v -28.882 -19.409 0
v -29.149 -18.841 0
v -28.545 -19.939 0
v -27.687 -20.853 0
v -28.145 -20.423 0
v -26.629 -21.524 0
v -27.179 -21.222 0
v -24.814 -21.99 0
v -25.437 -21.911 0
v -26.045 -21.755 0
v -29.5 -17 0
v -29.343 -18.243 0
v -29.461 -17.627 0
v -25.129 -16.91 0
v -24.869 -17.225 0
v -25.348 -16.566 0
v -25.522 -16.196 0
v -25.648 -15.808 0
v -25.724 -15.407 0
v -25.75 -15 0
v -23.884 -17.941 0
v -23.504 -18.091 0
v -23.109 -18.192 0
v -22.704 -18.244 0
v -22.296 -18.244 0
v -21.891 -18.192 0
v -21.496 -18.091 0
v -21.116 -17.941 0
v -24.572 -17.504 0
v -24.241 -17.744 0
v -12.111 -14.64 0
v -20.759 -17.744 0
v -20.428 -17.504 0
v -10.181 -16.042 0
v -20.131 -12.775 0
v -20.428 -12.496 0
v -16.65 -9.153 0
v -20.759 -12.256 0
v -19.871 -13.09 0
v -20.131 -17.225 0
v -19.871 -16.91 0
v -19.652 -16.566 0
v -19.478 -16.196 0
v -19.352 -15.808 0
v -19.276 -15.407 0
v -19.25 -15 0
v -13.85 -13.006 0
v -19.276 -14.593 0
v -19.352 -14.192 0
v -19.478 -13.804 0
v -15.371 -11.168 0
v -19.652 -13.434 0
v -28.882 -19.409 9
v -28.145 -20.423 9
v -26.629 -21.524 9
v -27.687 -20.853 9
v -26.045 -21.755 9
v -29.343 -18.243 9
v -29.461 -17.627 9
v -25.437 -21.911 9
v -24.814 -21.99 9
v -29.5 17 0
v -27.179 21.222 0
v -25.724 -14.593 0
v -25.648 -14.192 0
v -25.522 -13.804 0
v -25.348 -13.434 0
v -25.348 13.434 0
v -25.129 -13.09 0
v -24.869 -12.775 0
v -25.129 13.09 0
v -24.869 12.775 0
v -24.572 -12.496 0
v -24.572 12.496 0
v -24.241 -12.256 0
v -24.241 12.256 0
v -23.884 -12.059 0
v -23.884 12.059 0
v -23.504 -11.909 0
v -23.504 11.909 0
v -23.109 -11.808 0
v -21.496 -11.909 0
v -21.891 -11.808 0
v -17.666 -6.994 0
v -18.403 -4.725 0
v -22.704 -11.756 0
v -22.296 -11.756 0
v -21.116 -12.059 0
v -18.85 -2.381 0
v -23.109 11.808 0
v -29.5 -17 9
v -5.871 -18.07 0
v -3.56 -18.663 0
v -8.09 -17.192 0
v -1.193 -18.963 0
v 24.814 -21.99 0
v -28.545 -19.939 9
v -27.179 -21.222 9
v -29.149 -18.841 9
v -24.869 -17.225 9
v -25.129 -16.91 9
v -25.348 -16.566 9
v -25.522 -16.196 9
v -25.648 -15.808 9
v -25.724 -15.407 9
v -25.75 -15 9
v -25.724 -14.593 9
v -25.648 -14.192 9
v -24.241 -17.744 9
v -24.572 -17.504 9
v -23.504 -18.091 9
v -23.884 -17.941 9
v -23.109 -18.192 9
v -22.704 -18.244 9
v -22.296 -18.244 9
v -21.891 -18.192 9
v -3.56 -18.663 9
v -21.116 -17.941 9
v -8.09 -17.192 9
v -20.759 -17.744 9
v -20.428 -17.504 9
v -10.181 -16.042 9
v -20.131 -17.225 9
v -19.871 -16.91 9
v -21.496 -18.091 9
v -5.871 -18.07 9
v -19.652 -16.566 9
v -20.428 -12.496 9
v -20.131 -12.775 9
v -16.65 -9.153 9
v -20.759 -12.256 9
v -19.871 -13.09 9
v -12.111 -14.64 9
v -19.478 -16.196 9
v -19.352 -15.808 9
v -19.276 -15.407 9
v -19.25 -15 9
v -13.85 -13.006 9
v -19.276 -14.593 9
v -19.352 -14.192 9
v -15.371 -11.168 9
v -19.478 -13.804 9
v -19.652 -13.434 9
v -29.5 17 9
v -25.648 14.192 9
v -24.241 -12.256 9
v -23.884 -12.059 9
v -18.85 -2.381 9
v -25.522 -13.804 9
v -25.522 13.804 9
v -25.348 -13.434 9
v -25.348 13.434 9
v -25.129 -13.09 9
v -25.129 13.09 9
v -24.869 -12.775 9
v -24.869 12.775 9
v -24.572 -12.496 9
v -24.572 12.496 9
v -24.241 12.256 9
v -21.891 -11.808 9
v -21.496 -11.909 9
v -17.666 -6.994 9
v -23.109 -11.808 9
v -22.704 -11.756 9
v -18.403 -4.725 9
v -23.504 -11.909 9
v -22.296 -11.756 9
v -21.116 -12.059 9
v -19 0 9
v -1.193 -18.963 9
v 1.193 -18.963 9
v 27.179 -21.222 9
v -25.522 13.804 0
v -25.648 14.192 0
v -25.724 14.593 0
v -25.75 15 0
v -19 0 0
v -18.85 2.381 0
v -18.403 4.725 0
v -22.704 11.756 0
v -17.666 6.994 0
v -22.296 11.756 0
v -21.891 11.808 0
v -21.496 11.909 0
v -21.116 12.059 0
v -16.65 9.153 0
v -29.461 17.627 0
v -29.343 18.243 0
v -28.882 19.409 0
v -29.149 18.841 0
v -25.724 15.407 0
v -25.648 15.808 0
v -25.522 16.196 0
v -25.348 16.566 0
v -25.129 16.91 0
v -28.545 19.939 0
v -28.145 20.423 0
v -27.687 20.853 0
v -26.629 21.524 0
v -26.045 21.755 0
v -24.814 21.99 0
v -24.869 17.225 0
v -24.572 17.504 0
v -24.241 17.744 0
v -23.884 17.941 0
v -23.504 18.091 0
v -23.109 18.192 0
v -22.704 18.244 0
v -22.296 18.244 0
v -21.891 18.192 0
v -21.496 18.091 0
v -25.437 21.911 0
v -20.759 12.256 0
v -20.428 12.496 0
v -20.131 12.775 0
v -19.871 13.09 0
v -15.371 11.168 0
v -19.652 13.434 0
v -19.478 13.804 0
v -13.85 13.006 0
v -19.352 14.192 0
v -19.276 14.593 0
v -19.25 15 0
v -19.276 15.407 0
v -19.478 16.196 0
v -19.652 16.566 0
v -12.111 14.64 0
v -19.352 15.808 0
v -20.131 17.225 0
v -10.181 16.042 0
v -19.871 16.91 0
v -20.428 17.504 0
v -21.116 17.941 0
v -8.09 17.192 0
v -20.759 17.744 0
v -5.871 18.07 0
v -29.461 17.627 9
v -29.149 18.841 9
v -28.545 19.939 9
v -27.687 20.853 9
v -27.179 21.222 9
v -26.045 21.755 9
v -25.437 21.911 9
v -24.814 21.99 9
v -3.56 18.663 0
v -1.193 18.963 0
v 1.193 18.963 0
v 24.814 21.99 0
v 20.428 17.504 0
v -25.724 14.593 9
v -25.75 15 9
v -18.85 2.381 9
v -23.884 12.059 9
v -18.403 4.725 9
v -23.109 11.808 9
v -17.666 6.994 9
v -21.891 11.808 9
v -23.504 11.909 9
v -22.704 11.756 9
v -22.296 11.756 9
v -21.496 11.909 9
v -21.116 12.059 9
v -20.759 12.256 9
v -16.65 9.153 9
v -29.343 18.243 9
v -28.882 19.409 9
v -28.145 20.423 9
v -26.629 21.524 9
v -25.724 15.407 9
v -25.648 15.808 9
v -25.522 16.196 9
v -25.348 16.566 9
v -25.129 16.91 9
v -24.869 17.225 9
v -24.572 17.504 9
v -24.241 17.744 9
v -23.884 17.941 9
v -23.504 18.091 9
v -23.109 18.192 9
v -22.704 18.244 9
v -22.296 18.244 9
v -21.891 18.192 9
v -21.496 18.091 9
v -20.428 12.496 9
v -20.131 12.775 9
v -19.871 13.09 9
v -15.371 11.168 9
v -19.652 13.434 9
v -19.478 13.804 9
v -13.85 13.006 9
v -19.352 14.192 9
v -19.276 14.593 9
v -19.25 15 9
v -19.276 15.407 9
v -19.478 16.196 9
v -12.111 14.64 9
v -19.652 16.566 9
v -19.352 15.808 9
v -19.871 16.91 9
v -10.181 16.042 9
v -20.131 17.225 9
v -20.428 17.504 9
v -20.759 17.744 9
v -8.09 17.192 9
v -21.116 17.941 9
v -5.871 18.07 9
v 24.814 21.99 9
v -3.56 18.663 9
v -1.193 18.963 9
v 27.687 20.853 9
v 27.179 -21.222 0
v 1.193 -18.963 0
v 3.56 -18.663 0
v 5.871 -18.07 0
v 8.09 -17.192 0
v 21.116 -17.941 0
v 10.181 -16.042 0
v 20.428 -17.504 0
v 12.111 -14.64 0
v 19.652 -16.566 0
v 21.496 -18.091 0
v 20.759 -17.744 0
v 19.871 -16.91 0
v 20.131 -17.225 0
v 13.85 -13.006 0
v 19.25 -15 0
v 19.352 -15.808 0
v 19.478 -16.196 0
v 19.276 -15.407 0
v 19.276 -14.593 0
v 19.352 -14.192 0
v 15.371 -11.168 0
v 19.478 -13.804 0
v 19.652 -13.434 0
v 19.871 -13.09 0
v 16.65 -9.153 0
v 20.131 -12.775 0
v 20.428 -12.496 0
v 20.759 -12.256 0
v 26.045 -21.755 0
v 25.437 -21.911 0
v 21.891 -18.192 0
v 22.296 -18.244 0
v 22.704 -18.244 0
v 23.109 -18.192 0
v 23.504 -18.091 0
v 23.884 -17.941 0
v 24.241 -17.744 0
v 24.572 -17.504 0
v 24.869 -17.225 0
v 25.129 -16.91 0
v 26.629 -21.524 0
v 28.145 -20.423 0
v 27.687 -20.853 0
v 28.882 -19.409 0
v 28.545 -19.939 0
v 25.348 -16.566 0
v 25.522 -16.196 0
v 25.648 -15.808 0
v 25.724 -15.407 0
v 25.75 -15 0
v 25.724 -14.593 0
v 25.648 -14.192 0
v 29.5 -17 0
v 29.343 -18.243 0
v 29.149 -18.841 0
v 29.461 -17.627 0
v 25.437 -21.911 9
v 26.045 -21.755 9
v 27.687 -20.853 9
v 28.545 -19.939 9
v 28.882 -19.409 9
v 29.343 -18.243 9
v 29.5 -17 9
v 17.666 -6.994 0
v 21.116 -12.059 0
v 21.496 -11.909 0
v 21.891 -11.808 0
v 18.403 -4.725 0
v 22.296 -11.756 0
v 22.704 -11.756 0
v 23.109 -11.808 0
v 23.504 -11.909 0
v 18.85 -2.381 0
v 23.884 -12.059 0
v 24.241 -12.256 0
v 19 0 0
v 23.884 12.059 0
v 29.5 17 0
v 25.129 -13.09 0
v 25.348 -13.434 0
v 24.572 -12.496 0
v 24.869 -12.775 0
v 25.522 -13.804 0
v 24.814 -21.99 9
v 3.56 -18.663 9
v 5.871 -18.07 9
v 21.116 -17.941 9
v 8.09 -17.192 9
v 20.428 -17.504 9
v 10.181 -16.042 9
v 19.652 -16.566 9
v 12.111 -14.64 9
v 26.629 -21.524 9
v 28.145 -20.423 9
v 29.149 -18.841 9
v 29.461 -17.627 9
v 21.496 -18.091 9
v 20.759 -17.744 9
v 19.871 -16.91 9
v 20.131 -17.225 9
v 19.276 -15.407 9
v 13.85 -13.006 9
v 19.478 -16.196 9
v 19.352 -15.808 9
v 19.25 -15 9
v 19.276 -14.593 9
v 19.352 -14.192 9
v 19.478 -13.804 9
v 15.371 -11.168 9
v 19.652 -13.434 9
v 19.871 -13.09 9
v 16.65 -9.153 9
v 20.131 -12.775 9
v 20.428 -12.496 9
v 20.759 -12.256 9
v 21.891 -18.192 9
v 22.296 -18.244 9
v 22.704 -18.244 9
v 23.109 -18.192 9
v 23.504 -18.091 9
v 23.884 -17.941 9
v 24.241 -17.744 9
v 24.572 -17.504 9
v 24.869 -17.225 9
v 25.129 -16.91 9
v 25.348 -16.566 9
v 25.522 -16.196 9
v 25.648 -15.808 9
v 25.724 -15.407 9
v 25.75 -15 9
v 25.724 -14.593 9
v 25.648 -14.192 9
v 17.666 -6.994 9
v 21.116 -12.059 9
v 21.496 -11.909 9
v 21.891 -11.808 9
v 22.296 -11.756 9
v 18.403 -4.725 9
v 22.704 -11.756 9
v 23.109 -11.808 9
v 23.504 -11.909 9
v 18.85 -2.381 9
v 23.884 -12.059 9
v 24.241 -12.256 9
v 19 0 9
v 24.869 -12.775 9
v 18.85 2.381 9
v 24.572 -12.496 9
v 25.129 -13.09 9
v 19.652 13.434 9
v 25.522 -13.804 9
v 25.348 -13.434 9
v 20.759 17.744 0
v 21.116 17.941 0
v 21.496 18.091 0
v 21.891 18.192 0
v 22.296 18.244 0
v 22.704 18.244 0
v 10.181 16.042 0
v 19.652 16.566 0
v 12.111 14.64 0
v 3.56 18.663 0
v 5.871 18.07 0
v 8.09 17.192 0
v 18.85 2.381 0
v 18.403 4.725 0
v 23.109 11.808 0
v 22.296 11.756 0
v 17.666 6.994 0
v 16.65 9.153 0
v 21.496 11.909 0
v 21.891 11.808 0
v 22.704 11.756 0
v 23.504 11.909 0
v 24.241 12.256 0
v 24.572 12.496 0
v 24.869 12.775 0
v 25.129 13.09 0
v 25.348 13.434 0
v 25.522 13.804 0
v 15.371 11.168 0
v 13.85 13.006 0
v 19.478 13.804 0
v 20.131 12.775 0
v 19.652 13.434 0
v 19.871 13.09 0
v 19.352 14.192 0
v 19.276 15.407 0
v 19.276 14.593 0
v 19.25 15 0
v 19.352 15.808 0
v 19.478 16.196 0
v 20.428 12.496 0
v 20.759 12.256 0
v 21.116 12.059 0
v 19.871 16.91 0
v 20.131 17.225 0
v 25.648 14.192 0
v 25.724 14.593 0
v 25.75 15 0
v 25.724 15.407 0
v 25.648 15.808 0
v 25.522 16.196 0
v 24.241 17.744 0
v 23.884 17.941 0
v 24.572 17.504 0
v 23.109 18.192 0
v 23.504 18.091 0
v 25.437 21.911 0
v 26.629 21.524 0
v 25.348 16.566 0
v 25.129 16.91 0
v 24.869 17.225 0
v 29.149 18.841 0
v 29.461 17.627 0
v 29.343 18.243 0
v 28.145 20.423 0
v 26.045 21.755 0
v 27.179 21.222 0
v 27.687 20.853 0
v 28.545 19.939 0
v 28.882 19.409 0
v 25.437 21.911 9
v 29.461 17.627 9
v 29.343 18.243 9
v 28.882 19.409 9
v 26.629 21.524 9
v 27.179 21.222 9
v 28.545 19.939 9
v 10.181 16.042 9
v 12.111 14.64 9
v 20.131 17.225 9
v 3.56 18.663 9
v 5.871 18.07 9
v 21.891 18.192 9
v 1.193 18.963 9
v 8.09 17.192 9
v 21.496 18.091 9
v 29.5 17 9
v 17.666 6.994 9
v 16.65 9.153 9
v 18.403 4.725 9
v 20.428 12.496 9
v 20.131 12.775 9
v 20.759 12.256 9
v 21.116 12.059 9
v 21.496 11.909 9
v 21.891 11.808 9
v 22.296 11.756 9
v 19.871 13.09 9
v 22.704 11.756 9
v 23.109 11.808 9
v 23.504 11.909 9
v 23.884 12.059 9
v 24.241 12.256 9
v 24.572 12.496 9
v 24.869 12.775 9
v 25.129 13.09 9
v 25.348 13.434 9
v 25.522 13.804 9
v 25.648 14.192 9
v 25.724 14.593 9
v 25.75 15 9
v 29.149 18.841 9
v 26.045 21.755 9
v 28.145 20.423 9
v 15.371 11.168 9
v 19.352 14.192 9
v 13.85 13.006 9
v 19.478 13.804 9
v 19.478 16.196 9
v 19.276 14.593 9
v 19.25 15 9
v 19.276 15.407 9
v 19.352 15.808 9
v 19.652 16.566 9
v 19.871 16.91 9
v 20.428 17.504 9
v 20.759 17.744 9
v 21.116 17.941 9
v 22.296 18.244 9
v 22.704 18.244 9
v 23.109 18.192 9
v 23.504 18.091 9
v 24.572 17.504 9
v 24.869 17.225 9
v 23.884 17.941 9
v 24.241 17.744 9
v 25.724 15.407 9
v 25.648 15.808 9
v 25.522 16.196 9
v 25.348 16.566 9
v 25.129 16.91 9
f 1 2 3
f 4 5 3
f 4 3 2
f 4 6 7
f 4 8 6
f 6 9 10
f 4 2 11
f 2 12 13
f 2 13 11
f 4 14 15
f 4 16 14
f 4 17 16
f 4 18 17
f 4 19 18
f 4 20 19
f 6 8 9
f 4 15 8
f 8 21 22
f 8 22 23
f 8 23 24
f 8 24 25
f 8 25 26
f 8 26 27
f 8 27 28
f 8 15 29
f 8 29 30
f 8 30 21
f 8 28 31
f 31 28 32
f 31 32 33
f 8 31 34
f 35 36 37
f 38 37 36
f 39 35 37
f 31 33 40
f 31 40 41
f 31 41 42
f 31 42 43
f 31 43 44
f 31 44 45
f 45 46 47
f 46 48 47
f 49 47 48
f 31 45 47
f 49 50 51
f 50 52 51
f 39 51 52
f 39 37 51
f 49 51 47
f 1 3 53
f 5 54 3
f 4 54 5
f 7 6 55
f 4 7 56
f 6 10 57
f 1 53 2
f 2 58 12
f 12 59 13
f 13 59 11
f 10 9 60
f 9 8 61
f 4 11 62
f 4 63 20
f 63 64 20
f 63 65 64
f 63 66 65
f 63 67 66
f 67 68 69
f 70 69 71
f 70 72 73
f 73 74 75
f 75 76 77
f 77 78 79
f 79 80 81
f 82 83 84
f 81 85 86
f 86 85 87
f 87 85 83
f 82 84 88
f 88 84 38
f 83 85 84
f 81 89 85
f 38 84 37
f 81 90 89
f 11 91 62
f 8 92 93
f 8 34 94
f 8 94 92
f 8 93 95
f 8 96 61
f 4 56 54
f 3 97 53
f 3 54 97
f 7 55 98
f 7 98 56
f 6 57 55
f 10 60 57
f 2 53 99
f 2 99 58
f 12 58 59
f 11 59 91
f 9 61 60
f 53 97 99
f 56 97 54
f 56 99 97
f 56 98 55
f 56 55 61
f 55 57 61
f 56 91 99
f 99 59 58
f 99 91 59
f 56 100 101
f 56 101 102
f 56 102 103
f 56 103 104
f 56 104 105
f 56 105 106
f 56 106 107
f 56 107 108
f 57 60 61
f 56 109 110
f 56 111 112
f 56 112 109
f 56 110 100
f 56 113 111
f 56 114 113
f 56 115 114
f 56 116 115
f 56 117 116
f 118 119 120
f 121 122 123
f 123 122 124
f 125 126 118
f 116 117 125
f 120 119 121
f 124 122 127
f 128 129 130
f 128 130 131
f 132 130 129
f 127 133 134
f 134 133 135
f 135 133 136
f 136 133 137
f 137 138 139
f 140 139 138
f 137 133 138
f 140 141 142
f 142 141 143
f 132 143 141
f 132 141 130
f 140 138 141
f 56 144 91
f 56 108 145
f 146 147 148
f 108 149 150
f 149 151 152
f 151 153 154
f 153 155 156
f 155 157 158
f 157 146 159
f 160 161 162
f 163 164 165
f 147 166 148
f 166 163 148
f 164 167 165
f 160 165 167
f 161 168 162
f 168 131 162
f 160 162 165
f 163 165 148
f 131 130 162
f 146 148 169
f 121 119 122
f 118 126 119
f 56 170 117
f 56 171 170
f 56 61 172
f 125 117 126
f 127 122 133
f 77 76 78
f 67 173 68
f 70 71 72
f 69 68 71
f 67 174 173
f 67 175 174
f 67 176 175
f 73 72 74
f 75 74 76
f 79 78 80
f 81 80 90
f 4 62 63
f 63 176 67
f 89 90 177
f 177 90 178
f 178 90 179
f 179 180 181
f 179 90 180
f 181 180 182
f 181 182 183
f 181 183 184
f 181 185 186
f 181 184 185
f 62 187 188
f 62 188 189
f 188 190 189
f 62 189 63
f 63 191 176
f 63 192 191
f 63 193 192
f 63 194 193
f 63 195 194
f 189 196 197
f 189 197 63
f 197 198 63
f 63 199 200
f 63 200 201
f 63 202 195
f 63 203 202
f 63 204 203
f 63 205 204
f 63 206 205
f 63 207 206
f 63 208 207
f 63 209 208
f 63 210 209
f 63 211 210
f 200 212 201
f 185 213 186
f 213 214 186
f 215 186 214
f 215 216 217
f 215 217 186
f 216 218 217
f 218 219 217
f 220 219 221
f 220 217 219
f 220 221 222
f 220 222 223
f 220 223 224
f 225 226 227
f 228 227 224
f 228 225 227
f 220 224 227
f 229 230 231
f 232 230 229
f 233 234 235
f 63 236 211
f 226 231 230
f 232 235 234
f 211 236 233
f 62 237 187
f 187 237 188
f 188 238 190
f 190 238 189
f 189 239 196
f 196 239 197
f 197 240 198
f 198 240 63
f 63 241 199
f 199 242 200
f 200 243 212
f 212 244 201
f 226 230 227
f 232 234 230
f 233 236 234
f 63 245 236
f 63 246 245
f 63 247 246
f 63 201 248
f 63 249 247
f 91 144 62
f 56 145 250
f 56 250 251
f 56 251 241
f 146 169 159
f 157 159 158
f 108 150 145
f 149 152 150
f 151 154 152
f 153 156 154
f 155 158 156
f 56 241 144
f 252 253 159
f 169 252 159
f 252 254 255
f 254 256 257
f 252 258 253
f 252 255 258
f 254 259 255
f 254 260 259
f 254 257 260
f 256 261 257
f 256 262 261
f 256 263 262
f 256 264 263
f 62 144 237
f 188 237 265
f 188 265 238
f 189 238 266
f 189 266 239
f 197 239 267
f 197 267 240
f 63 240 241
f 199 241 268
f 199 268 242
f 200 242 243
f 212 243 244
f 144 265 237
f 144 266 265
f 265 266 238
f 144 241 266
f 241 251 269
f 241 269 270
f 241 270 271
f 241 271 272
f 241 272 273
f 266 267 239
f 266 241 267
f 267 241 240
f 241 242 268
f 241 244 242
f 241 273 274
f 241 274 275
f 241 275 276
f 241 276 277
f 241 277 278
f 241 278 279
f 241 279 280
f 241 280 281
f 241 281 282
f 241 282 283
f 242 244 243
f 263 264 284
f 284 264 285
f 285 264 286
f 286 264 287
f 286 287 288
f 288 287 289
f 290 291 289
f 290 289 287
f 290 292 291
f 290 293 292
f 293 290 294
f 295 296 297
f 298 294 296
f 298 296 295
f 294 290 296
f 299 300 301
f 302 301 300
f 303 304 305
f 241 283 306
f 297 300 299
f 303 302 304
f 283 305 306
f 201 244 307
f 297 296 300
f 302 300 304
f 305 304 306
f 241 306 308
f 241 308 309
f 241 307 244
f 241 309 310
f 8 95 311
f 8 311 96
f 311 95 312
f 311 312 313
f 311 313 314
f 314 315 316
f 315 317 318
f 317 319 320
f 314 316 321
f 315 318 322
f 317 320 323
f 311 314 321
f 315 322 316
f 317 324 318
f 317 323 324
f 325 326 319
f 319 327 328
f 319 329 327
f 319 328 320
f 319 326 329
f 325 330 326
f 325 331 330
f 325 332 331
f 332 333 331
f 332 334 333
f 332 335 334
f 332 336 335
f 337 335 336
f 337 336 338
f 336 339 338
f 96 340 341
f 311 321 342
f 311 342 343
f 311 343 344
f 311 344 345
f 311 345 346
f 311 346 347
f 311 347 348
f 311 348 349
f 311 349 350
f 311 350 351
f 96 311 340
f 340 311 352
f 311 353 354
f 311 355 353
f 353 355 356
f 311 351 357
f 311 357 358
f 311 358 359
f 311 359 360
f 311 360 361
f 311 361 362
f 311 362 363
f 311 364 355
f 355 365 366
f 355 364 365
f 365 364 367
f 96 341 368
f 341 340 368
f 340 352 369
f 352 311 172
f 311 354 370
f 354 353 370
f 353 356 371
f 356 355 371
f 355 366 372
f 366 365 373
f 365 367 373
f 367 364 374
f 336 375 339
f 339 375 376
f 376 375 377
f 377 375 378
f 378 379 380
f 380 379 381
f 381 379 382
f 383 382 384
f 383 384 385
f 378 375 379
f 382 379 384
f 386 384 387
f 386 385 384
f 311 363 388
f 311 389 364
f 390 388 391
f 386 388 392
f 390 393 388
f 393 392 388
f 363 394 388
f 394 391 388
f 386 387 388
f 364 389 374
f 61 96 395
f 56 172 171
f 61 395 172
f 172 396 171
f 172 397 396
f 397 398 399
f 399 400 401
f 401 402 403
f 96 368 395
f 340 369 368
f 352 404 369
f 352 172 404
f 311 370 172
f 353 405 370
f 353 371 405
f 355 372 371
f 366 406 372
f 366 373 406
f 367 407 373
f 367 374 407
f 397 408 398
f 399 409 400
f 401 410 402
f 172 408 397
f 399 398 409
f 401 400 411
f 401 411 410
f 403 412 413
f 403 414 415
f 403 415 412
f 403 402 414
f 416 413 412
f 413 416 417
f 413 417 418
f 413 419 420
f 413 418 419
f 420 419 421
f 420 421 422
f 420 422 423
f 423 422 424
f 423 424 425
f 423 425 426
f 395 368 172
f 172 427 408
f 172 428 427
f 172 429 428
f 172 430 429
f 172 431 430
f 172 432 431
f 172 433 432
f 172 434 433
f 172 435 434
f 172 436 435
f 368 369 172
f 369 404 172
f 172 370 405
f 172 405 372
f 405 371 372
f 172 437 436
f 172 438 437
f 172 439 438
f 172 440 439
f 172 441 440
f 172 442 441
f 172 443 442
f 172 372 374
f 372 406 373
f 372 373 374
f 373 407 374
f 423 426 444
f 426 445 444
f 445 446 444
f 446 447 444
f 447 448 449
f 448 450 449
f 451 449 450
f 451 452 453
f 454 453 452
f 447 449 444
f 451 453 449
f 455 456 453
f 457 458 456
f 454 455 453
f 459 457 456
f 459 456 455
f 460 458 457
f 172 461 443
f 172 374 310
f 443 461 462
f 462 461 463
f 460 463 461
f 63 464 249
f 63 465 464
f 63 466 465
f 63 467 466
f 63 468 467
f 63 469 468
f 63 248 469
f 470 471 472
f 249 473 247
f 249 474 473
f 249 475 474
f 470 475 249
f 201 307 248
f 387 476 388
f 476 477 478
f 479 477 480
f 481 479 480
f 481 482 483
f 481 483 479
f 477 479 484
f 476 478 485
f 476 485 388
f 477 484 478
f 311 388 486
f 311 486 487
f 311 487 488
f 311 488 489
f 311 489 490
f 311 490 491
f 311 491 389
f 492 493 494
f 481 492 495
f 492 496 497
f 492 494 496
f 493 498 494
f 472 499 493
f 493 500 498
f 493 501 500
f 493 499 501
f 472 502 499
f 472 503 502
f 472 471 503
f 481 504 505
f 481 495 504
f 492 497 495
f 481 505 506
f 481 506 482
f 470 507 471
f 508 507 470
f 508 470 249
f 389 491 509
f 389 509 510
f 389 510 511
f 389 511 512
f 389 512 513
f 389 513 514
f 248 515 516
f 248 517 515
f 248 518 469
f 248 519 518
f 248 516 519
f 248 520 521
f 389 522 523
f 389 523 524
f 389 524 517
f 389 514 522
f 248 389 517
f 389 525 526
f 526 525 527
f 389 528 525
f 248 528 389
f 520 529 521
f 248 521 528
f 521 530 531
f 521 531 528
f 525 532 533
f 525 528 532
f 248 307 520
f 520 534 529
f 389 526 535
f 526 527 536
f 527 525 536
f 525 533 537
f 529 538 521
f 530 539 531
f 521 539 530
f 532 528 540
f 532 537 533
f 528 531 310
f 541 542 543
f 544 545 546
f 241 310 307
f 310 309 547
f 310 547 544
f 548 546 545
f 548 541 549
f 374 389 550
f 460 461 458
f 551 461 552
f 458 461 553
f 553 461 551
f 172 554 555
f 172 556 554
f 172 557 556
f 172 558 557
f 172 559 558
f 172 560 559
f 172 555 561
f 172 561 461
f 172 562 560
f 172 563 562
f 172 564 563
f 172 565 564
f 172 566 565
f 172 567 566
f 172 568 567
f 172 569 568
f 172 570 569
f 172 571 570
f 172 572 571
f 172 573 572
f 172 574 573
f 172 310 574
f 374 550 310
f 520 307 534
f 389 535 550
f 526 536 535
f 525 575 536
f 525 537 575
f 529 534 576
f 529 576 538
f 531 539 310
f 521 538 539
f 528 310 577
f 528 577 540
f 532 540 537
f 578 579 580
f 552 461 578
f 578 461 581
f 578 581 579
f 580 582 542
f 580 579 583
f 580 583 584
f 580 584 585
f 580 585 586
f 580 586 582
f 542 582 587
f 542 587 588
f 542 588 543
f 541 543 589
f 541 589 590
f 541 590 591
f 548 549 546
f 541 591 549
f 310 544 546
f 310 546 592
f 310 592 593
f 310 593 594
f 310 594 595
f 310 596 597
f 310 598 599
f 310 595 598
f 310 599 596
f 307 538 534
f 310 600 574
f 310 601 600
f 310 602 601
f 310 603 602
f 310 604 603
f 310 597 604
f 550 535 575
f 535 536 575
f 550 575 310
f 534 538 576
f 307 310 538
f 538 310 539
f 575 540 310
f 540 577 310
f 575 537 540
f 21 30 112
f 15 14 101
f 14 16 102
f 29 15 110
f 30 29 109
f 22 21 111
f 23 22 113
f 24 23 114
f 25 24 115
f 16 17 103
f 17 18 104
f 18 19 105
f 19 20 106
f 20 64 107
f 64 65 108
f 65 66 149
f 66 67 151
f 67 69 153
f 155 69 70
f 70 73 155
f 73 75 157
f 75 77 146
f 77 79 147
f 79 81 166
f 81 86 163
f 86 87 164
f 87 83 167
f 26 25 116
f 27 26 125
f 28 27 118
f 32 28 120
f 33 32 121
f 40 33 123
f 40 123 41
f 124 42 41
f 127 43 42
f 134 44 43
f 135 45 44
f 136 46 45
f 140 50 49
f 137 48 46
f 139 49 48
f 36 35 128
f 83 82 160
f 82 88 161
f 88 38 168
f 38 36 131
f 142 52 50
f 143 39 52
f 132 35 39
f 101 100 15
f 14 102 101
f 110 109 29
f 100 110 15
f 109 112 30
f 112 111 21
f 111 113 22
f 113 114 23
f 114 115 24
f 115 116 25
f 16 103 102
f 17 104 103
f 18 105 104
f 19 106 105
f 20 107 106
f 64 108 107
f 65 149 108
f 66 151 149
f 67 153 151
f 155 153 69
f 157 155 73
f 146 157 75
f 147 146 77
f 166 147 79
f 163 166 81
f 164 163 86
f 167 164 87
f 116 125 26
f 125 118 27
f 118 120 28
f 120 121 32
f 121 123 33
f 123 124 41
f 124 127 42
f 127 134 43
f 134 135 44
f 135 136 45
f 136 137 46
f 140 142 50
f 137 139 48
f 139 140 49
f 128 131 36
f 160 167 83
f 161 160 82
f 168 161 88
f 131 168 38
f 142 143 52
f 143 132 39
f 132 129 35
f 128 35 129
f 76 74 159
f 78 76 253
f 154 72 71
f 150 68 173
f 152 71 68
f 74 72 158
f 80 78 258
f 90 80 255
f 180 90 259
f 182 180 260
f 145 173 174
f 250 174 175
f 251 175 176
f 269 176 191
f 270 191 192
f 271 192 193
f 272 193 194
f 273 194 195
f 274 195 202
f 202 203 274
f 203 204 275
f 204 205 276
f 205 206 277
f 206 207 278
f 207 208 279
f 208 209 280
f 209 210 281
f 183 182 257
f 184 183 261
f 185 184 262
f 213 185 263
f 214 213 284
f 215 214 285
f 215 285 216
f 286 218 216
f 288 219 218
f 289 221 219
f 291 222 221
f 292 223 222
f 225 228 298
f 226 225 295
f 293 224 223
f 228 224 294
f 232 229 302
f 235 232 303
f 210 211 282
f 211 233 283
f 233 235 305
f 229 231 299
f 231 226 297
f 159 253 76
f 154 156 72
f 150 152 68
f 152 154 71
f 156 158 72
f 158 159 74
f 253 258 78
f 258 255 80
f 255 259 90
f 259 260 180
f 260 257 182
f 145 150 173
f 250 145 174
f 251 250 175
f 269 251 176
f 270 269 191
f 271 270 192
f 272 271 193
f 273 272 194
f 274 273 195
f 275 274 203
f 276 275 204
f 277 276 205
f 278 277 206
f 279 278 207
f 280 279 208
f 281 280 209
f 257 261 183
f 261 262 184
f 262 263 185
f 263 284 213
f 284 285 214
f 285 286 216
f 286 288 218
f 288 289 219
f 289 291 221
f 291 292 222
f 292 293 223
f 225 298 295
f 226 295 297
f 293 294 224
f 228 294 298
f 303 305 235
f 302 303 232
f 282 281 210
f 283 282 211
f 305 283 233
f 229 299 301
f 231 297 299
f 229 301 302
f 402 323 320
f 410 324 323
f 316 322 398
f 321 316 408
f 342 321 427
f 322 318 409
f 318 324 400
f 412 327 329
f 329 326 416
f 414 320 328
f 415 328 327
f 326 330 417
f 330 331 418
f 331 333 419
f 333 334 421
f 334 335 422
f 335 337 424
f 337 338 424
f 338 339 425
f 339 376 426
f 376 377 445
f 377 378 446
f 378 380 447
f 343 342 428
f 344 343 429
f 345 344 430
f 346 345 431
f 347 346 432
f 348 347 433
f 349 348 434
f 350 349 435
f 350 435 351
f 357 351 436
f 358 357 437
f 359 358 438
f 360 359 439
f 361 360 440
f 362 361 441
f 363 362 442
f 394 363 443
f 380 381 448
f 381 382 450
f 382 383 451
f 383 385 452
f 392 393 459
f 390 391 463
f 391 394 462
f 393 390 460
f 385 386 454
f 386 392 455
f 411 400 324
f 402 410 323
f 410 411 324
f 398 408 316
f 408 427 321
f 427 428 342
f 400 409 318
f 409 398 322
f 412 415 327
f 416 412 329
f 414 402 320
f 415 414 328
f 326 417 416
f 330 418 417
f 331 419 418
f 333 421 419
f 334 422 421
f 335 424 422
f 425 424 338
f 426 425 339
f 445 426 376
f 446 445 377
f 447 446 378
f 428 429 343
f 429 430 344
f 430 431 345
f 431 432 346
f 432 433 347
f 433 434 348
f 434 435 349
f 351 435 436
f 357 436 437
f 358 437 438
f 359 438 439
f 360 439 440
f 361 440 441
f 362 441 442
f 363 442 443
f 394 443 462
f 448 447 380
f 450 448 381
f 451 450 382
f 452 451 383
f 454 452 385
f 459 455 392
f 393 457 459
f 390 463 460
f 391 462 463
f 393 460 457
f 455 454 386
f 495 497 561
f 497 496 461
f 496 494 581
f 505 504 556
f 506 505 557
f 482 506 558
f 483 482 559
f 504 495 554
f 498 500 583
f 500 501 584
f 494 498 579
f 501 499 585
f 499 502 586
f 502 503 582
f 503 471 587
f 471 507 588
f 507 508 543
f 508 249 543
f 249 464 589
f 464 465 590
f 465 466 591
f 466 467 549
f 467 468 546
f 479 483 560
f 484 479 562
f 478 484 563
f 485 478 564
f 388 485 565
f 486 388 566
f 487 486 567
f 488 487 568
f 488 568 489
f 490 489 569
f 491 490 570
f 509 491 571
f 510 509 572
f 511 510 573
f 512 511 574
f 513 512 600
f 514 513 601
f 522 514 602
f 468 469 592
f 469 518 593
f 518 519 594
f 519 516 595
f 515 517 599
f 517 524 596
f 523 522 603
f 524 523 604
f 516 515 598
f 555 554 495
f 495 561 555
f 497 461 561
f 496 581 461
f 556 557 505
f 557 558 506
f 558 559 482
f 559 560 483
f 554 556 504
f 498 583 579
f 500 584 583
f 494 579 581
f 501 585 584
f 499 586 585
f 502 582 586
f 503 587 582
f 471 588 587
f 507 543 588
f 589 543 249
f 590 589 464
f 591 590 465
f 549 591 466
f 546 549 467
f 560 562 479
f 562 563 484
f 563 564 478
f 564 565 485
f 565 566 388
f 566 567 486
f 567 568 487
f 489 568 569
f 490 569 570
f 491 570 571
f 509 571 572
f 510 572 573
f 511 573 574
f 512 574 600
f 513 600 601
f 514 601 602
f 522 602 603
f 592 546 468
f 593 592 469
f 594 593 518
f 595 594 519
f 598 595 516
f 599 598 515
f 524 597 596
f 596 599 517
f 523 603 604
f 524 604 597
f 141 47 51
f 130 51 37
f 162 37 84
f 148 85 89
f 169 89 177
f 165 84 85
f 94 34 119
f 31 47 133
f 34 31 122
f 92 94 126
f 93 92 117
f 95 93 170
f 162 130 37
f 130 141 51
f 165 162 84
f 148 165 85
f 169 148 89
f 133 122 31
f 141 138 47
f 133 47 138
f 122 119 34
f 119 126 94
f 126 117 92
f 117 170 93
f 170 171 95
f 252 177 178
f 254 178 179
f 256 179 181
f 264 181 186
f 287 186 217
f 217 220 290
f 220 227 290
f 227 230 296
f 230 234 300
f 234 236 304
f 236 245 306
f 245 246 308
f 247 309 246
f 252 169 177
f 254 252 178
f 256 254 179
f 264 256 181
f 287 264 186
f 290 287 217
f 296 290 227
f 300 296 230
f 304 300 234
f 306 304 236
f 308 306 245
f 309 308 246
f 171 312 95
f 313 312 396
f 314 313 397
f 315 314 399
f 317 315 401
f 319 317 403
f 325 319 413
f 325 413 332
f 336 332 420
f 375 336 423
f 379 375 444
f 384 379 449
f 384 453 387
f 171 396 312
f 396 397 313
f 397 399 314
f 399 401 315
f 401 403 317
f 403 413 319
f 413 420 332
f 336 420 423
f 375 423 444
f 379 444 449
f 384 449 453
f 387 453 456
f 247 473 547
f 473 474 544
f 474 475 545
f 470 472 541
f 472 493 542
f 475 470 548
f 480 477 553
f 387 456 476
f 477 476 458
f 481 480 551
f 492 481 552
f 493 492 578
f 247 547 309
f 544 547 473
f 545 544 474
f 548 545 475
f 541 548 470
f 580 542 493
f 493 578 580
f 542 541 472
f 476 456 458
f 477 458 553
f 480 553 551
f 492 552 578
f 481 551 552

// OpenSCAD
$fn = 50;

difference() {
	union() {
		hull() {
			translate(v = [-24.5, 17.0, 0]) {
				cylinder(h = 9, r = 5);
			}
			translate(v = [24.5, 17.0, 0]) {
				cylinder(h = 9, r = 5);
			}
			translate(v = [-24.5, -17.0, 0]) {
				cylinder(h = 9, r = 5);
			}
			translate(v = [24.5, -17.0, 0]) {
				cylinder(h = 9, r = 5);
			}
		}
	}
	union() {
		translate(v = [-22.5, -15.0, 0]) {
			cylinder(h = 9, r = 3.25);
		}
		translate(v = [-22.5, 15.0, 0]) {
			cylinder(h = 9, r = 3.25);
		}
		translate(v = [22.5, -15.0, 0]) {
			cylinder(h = 9, r = 3.25);
		}
		translate(v = [22.5, 15.0, 0]) {
			cylinder(h = 9, r = 3.25);
		}
		cylinder(h = 9, r = 19.0);
	}
}
